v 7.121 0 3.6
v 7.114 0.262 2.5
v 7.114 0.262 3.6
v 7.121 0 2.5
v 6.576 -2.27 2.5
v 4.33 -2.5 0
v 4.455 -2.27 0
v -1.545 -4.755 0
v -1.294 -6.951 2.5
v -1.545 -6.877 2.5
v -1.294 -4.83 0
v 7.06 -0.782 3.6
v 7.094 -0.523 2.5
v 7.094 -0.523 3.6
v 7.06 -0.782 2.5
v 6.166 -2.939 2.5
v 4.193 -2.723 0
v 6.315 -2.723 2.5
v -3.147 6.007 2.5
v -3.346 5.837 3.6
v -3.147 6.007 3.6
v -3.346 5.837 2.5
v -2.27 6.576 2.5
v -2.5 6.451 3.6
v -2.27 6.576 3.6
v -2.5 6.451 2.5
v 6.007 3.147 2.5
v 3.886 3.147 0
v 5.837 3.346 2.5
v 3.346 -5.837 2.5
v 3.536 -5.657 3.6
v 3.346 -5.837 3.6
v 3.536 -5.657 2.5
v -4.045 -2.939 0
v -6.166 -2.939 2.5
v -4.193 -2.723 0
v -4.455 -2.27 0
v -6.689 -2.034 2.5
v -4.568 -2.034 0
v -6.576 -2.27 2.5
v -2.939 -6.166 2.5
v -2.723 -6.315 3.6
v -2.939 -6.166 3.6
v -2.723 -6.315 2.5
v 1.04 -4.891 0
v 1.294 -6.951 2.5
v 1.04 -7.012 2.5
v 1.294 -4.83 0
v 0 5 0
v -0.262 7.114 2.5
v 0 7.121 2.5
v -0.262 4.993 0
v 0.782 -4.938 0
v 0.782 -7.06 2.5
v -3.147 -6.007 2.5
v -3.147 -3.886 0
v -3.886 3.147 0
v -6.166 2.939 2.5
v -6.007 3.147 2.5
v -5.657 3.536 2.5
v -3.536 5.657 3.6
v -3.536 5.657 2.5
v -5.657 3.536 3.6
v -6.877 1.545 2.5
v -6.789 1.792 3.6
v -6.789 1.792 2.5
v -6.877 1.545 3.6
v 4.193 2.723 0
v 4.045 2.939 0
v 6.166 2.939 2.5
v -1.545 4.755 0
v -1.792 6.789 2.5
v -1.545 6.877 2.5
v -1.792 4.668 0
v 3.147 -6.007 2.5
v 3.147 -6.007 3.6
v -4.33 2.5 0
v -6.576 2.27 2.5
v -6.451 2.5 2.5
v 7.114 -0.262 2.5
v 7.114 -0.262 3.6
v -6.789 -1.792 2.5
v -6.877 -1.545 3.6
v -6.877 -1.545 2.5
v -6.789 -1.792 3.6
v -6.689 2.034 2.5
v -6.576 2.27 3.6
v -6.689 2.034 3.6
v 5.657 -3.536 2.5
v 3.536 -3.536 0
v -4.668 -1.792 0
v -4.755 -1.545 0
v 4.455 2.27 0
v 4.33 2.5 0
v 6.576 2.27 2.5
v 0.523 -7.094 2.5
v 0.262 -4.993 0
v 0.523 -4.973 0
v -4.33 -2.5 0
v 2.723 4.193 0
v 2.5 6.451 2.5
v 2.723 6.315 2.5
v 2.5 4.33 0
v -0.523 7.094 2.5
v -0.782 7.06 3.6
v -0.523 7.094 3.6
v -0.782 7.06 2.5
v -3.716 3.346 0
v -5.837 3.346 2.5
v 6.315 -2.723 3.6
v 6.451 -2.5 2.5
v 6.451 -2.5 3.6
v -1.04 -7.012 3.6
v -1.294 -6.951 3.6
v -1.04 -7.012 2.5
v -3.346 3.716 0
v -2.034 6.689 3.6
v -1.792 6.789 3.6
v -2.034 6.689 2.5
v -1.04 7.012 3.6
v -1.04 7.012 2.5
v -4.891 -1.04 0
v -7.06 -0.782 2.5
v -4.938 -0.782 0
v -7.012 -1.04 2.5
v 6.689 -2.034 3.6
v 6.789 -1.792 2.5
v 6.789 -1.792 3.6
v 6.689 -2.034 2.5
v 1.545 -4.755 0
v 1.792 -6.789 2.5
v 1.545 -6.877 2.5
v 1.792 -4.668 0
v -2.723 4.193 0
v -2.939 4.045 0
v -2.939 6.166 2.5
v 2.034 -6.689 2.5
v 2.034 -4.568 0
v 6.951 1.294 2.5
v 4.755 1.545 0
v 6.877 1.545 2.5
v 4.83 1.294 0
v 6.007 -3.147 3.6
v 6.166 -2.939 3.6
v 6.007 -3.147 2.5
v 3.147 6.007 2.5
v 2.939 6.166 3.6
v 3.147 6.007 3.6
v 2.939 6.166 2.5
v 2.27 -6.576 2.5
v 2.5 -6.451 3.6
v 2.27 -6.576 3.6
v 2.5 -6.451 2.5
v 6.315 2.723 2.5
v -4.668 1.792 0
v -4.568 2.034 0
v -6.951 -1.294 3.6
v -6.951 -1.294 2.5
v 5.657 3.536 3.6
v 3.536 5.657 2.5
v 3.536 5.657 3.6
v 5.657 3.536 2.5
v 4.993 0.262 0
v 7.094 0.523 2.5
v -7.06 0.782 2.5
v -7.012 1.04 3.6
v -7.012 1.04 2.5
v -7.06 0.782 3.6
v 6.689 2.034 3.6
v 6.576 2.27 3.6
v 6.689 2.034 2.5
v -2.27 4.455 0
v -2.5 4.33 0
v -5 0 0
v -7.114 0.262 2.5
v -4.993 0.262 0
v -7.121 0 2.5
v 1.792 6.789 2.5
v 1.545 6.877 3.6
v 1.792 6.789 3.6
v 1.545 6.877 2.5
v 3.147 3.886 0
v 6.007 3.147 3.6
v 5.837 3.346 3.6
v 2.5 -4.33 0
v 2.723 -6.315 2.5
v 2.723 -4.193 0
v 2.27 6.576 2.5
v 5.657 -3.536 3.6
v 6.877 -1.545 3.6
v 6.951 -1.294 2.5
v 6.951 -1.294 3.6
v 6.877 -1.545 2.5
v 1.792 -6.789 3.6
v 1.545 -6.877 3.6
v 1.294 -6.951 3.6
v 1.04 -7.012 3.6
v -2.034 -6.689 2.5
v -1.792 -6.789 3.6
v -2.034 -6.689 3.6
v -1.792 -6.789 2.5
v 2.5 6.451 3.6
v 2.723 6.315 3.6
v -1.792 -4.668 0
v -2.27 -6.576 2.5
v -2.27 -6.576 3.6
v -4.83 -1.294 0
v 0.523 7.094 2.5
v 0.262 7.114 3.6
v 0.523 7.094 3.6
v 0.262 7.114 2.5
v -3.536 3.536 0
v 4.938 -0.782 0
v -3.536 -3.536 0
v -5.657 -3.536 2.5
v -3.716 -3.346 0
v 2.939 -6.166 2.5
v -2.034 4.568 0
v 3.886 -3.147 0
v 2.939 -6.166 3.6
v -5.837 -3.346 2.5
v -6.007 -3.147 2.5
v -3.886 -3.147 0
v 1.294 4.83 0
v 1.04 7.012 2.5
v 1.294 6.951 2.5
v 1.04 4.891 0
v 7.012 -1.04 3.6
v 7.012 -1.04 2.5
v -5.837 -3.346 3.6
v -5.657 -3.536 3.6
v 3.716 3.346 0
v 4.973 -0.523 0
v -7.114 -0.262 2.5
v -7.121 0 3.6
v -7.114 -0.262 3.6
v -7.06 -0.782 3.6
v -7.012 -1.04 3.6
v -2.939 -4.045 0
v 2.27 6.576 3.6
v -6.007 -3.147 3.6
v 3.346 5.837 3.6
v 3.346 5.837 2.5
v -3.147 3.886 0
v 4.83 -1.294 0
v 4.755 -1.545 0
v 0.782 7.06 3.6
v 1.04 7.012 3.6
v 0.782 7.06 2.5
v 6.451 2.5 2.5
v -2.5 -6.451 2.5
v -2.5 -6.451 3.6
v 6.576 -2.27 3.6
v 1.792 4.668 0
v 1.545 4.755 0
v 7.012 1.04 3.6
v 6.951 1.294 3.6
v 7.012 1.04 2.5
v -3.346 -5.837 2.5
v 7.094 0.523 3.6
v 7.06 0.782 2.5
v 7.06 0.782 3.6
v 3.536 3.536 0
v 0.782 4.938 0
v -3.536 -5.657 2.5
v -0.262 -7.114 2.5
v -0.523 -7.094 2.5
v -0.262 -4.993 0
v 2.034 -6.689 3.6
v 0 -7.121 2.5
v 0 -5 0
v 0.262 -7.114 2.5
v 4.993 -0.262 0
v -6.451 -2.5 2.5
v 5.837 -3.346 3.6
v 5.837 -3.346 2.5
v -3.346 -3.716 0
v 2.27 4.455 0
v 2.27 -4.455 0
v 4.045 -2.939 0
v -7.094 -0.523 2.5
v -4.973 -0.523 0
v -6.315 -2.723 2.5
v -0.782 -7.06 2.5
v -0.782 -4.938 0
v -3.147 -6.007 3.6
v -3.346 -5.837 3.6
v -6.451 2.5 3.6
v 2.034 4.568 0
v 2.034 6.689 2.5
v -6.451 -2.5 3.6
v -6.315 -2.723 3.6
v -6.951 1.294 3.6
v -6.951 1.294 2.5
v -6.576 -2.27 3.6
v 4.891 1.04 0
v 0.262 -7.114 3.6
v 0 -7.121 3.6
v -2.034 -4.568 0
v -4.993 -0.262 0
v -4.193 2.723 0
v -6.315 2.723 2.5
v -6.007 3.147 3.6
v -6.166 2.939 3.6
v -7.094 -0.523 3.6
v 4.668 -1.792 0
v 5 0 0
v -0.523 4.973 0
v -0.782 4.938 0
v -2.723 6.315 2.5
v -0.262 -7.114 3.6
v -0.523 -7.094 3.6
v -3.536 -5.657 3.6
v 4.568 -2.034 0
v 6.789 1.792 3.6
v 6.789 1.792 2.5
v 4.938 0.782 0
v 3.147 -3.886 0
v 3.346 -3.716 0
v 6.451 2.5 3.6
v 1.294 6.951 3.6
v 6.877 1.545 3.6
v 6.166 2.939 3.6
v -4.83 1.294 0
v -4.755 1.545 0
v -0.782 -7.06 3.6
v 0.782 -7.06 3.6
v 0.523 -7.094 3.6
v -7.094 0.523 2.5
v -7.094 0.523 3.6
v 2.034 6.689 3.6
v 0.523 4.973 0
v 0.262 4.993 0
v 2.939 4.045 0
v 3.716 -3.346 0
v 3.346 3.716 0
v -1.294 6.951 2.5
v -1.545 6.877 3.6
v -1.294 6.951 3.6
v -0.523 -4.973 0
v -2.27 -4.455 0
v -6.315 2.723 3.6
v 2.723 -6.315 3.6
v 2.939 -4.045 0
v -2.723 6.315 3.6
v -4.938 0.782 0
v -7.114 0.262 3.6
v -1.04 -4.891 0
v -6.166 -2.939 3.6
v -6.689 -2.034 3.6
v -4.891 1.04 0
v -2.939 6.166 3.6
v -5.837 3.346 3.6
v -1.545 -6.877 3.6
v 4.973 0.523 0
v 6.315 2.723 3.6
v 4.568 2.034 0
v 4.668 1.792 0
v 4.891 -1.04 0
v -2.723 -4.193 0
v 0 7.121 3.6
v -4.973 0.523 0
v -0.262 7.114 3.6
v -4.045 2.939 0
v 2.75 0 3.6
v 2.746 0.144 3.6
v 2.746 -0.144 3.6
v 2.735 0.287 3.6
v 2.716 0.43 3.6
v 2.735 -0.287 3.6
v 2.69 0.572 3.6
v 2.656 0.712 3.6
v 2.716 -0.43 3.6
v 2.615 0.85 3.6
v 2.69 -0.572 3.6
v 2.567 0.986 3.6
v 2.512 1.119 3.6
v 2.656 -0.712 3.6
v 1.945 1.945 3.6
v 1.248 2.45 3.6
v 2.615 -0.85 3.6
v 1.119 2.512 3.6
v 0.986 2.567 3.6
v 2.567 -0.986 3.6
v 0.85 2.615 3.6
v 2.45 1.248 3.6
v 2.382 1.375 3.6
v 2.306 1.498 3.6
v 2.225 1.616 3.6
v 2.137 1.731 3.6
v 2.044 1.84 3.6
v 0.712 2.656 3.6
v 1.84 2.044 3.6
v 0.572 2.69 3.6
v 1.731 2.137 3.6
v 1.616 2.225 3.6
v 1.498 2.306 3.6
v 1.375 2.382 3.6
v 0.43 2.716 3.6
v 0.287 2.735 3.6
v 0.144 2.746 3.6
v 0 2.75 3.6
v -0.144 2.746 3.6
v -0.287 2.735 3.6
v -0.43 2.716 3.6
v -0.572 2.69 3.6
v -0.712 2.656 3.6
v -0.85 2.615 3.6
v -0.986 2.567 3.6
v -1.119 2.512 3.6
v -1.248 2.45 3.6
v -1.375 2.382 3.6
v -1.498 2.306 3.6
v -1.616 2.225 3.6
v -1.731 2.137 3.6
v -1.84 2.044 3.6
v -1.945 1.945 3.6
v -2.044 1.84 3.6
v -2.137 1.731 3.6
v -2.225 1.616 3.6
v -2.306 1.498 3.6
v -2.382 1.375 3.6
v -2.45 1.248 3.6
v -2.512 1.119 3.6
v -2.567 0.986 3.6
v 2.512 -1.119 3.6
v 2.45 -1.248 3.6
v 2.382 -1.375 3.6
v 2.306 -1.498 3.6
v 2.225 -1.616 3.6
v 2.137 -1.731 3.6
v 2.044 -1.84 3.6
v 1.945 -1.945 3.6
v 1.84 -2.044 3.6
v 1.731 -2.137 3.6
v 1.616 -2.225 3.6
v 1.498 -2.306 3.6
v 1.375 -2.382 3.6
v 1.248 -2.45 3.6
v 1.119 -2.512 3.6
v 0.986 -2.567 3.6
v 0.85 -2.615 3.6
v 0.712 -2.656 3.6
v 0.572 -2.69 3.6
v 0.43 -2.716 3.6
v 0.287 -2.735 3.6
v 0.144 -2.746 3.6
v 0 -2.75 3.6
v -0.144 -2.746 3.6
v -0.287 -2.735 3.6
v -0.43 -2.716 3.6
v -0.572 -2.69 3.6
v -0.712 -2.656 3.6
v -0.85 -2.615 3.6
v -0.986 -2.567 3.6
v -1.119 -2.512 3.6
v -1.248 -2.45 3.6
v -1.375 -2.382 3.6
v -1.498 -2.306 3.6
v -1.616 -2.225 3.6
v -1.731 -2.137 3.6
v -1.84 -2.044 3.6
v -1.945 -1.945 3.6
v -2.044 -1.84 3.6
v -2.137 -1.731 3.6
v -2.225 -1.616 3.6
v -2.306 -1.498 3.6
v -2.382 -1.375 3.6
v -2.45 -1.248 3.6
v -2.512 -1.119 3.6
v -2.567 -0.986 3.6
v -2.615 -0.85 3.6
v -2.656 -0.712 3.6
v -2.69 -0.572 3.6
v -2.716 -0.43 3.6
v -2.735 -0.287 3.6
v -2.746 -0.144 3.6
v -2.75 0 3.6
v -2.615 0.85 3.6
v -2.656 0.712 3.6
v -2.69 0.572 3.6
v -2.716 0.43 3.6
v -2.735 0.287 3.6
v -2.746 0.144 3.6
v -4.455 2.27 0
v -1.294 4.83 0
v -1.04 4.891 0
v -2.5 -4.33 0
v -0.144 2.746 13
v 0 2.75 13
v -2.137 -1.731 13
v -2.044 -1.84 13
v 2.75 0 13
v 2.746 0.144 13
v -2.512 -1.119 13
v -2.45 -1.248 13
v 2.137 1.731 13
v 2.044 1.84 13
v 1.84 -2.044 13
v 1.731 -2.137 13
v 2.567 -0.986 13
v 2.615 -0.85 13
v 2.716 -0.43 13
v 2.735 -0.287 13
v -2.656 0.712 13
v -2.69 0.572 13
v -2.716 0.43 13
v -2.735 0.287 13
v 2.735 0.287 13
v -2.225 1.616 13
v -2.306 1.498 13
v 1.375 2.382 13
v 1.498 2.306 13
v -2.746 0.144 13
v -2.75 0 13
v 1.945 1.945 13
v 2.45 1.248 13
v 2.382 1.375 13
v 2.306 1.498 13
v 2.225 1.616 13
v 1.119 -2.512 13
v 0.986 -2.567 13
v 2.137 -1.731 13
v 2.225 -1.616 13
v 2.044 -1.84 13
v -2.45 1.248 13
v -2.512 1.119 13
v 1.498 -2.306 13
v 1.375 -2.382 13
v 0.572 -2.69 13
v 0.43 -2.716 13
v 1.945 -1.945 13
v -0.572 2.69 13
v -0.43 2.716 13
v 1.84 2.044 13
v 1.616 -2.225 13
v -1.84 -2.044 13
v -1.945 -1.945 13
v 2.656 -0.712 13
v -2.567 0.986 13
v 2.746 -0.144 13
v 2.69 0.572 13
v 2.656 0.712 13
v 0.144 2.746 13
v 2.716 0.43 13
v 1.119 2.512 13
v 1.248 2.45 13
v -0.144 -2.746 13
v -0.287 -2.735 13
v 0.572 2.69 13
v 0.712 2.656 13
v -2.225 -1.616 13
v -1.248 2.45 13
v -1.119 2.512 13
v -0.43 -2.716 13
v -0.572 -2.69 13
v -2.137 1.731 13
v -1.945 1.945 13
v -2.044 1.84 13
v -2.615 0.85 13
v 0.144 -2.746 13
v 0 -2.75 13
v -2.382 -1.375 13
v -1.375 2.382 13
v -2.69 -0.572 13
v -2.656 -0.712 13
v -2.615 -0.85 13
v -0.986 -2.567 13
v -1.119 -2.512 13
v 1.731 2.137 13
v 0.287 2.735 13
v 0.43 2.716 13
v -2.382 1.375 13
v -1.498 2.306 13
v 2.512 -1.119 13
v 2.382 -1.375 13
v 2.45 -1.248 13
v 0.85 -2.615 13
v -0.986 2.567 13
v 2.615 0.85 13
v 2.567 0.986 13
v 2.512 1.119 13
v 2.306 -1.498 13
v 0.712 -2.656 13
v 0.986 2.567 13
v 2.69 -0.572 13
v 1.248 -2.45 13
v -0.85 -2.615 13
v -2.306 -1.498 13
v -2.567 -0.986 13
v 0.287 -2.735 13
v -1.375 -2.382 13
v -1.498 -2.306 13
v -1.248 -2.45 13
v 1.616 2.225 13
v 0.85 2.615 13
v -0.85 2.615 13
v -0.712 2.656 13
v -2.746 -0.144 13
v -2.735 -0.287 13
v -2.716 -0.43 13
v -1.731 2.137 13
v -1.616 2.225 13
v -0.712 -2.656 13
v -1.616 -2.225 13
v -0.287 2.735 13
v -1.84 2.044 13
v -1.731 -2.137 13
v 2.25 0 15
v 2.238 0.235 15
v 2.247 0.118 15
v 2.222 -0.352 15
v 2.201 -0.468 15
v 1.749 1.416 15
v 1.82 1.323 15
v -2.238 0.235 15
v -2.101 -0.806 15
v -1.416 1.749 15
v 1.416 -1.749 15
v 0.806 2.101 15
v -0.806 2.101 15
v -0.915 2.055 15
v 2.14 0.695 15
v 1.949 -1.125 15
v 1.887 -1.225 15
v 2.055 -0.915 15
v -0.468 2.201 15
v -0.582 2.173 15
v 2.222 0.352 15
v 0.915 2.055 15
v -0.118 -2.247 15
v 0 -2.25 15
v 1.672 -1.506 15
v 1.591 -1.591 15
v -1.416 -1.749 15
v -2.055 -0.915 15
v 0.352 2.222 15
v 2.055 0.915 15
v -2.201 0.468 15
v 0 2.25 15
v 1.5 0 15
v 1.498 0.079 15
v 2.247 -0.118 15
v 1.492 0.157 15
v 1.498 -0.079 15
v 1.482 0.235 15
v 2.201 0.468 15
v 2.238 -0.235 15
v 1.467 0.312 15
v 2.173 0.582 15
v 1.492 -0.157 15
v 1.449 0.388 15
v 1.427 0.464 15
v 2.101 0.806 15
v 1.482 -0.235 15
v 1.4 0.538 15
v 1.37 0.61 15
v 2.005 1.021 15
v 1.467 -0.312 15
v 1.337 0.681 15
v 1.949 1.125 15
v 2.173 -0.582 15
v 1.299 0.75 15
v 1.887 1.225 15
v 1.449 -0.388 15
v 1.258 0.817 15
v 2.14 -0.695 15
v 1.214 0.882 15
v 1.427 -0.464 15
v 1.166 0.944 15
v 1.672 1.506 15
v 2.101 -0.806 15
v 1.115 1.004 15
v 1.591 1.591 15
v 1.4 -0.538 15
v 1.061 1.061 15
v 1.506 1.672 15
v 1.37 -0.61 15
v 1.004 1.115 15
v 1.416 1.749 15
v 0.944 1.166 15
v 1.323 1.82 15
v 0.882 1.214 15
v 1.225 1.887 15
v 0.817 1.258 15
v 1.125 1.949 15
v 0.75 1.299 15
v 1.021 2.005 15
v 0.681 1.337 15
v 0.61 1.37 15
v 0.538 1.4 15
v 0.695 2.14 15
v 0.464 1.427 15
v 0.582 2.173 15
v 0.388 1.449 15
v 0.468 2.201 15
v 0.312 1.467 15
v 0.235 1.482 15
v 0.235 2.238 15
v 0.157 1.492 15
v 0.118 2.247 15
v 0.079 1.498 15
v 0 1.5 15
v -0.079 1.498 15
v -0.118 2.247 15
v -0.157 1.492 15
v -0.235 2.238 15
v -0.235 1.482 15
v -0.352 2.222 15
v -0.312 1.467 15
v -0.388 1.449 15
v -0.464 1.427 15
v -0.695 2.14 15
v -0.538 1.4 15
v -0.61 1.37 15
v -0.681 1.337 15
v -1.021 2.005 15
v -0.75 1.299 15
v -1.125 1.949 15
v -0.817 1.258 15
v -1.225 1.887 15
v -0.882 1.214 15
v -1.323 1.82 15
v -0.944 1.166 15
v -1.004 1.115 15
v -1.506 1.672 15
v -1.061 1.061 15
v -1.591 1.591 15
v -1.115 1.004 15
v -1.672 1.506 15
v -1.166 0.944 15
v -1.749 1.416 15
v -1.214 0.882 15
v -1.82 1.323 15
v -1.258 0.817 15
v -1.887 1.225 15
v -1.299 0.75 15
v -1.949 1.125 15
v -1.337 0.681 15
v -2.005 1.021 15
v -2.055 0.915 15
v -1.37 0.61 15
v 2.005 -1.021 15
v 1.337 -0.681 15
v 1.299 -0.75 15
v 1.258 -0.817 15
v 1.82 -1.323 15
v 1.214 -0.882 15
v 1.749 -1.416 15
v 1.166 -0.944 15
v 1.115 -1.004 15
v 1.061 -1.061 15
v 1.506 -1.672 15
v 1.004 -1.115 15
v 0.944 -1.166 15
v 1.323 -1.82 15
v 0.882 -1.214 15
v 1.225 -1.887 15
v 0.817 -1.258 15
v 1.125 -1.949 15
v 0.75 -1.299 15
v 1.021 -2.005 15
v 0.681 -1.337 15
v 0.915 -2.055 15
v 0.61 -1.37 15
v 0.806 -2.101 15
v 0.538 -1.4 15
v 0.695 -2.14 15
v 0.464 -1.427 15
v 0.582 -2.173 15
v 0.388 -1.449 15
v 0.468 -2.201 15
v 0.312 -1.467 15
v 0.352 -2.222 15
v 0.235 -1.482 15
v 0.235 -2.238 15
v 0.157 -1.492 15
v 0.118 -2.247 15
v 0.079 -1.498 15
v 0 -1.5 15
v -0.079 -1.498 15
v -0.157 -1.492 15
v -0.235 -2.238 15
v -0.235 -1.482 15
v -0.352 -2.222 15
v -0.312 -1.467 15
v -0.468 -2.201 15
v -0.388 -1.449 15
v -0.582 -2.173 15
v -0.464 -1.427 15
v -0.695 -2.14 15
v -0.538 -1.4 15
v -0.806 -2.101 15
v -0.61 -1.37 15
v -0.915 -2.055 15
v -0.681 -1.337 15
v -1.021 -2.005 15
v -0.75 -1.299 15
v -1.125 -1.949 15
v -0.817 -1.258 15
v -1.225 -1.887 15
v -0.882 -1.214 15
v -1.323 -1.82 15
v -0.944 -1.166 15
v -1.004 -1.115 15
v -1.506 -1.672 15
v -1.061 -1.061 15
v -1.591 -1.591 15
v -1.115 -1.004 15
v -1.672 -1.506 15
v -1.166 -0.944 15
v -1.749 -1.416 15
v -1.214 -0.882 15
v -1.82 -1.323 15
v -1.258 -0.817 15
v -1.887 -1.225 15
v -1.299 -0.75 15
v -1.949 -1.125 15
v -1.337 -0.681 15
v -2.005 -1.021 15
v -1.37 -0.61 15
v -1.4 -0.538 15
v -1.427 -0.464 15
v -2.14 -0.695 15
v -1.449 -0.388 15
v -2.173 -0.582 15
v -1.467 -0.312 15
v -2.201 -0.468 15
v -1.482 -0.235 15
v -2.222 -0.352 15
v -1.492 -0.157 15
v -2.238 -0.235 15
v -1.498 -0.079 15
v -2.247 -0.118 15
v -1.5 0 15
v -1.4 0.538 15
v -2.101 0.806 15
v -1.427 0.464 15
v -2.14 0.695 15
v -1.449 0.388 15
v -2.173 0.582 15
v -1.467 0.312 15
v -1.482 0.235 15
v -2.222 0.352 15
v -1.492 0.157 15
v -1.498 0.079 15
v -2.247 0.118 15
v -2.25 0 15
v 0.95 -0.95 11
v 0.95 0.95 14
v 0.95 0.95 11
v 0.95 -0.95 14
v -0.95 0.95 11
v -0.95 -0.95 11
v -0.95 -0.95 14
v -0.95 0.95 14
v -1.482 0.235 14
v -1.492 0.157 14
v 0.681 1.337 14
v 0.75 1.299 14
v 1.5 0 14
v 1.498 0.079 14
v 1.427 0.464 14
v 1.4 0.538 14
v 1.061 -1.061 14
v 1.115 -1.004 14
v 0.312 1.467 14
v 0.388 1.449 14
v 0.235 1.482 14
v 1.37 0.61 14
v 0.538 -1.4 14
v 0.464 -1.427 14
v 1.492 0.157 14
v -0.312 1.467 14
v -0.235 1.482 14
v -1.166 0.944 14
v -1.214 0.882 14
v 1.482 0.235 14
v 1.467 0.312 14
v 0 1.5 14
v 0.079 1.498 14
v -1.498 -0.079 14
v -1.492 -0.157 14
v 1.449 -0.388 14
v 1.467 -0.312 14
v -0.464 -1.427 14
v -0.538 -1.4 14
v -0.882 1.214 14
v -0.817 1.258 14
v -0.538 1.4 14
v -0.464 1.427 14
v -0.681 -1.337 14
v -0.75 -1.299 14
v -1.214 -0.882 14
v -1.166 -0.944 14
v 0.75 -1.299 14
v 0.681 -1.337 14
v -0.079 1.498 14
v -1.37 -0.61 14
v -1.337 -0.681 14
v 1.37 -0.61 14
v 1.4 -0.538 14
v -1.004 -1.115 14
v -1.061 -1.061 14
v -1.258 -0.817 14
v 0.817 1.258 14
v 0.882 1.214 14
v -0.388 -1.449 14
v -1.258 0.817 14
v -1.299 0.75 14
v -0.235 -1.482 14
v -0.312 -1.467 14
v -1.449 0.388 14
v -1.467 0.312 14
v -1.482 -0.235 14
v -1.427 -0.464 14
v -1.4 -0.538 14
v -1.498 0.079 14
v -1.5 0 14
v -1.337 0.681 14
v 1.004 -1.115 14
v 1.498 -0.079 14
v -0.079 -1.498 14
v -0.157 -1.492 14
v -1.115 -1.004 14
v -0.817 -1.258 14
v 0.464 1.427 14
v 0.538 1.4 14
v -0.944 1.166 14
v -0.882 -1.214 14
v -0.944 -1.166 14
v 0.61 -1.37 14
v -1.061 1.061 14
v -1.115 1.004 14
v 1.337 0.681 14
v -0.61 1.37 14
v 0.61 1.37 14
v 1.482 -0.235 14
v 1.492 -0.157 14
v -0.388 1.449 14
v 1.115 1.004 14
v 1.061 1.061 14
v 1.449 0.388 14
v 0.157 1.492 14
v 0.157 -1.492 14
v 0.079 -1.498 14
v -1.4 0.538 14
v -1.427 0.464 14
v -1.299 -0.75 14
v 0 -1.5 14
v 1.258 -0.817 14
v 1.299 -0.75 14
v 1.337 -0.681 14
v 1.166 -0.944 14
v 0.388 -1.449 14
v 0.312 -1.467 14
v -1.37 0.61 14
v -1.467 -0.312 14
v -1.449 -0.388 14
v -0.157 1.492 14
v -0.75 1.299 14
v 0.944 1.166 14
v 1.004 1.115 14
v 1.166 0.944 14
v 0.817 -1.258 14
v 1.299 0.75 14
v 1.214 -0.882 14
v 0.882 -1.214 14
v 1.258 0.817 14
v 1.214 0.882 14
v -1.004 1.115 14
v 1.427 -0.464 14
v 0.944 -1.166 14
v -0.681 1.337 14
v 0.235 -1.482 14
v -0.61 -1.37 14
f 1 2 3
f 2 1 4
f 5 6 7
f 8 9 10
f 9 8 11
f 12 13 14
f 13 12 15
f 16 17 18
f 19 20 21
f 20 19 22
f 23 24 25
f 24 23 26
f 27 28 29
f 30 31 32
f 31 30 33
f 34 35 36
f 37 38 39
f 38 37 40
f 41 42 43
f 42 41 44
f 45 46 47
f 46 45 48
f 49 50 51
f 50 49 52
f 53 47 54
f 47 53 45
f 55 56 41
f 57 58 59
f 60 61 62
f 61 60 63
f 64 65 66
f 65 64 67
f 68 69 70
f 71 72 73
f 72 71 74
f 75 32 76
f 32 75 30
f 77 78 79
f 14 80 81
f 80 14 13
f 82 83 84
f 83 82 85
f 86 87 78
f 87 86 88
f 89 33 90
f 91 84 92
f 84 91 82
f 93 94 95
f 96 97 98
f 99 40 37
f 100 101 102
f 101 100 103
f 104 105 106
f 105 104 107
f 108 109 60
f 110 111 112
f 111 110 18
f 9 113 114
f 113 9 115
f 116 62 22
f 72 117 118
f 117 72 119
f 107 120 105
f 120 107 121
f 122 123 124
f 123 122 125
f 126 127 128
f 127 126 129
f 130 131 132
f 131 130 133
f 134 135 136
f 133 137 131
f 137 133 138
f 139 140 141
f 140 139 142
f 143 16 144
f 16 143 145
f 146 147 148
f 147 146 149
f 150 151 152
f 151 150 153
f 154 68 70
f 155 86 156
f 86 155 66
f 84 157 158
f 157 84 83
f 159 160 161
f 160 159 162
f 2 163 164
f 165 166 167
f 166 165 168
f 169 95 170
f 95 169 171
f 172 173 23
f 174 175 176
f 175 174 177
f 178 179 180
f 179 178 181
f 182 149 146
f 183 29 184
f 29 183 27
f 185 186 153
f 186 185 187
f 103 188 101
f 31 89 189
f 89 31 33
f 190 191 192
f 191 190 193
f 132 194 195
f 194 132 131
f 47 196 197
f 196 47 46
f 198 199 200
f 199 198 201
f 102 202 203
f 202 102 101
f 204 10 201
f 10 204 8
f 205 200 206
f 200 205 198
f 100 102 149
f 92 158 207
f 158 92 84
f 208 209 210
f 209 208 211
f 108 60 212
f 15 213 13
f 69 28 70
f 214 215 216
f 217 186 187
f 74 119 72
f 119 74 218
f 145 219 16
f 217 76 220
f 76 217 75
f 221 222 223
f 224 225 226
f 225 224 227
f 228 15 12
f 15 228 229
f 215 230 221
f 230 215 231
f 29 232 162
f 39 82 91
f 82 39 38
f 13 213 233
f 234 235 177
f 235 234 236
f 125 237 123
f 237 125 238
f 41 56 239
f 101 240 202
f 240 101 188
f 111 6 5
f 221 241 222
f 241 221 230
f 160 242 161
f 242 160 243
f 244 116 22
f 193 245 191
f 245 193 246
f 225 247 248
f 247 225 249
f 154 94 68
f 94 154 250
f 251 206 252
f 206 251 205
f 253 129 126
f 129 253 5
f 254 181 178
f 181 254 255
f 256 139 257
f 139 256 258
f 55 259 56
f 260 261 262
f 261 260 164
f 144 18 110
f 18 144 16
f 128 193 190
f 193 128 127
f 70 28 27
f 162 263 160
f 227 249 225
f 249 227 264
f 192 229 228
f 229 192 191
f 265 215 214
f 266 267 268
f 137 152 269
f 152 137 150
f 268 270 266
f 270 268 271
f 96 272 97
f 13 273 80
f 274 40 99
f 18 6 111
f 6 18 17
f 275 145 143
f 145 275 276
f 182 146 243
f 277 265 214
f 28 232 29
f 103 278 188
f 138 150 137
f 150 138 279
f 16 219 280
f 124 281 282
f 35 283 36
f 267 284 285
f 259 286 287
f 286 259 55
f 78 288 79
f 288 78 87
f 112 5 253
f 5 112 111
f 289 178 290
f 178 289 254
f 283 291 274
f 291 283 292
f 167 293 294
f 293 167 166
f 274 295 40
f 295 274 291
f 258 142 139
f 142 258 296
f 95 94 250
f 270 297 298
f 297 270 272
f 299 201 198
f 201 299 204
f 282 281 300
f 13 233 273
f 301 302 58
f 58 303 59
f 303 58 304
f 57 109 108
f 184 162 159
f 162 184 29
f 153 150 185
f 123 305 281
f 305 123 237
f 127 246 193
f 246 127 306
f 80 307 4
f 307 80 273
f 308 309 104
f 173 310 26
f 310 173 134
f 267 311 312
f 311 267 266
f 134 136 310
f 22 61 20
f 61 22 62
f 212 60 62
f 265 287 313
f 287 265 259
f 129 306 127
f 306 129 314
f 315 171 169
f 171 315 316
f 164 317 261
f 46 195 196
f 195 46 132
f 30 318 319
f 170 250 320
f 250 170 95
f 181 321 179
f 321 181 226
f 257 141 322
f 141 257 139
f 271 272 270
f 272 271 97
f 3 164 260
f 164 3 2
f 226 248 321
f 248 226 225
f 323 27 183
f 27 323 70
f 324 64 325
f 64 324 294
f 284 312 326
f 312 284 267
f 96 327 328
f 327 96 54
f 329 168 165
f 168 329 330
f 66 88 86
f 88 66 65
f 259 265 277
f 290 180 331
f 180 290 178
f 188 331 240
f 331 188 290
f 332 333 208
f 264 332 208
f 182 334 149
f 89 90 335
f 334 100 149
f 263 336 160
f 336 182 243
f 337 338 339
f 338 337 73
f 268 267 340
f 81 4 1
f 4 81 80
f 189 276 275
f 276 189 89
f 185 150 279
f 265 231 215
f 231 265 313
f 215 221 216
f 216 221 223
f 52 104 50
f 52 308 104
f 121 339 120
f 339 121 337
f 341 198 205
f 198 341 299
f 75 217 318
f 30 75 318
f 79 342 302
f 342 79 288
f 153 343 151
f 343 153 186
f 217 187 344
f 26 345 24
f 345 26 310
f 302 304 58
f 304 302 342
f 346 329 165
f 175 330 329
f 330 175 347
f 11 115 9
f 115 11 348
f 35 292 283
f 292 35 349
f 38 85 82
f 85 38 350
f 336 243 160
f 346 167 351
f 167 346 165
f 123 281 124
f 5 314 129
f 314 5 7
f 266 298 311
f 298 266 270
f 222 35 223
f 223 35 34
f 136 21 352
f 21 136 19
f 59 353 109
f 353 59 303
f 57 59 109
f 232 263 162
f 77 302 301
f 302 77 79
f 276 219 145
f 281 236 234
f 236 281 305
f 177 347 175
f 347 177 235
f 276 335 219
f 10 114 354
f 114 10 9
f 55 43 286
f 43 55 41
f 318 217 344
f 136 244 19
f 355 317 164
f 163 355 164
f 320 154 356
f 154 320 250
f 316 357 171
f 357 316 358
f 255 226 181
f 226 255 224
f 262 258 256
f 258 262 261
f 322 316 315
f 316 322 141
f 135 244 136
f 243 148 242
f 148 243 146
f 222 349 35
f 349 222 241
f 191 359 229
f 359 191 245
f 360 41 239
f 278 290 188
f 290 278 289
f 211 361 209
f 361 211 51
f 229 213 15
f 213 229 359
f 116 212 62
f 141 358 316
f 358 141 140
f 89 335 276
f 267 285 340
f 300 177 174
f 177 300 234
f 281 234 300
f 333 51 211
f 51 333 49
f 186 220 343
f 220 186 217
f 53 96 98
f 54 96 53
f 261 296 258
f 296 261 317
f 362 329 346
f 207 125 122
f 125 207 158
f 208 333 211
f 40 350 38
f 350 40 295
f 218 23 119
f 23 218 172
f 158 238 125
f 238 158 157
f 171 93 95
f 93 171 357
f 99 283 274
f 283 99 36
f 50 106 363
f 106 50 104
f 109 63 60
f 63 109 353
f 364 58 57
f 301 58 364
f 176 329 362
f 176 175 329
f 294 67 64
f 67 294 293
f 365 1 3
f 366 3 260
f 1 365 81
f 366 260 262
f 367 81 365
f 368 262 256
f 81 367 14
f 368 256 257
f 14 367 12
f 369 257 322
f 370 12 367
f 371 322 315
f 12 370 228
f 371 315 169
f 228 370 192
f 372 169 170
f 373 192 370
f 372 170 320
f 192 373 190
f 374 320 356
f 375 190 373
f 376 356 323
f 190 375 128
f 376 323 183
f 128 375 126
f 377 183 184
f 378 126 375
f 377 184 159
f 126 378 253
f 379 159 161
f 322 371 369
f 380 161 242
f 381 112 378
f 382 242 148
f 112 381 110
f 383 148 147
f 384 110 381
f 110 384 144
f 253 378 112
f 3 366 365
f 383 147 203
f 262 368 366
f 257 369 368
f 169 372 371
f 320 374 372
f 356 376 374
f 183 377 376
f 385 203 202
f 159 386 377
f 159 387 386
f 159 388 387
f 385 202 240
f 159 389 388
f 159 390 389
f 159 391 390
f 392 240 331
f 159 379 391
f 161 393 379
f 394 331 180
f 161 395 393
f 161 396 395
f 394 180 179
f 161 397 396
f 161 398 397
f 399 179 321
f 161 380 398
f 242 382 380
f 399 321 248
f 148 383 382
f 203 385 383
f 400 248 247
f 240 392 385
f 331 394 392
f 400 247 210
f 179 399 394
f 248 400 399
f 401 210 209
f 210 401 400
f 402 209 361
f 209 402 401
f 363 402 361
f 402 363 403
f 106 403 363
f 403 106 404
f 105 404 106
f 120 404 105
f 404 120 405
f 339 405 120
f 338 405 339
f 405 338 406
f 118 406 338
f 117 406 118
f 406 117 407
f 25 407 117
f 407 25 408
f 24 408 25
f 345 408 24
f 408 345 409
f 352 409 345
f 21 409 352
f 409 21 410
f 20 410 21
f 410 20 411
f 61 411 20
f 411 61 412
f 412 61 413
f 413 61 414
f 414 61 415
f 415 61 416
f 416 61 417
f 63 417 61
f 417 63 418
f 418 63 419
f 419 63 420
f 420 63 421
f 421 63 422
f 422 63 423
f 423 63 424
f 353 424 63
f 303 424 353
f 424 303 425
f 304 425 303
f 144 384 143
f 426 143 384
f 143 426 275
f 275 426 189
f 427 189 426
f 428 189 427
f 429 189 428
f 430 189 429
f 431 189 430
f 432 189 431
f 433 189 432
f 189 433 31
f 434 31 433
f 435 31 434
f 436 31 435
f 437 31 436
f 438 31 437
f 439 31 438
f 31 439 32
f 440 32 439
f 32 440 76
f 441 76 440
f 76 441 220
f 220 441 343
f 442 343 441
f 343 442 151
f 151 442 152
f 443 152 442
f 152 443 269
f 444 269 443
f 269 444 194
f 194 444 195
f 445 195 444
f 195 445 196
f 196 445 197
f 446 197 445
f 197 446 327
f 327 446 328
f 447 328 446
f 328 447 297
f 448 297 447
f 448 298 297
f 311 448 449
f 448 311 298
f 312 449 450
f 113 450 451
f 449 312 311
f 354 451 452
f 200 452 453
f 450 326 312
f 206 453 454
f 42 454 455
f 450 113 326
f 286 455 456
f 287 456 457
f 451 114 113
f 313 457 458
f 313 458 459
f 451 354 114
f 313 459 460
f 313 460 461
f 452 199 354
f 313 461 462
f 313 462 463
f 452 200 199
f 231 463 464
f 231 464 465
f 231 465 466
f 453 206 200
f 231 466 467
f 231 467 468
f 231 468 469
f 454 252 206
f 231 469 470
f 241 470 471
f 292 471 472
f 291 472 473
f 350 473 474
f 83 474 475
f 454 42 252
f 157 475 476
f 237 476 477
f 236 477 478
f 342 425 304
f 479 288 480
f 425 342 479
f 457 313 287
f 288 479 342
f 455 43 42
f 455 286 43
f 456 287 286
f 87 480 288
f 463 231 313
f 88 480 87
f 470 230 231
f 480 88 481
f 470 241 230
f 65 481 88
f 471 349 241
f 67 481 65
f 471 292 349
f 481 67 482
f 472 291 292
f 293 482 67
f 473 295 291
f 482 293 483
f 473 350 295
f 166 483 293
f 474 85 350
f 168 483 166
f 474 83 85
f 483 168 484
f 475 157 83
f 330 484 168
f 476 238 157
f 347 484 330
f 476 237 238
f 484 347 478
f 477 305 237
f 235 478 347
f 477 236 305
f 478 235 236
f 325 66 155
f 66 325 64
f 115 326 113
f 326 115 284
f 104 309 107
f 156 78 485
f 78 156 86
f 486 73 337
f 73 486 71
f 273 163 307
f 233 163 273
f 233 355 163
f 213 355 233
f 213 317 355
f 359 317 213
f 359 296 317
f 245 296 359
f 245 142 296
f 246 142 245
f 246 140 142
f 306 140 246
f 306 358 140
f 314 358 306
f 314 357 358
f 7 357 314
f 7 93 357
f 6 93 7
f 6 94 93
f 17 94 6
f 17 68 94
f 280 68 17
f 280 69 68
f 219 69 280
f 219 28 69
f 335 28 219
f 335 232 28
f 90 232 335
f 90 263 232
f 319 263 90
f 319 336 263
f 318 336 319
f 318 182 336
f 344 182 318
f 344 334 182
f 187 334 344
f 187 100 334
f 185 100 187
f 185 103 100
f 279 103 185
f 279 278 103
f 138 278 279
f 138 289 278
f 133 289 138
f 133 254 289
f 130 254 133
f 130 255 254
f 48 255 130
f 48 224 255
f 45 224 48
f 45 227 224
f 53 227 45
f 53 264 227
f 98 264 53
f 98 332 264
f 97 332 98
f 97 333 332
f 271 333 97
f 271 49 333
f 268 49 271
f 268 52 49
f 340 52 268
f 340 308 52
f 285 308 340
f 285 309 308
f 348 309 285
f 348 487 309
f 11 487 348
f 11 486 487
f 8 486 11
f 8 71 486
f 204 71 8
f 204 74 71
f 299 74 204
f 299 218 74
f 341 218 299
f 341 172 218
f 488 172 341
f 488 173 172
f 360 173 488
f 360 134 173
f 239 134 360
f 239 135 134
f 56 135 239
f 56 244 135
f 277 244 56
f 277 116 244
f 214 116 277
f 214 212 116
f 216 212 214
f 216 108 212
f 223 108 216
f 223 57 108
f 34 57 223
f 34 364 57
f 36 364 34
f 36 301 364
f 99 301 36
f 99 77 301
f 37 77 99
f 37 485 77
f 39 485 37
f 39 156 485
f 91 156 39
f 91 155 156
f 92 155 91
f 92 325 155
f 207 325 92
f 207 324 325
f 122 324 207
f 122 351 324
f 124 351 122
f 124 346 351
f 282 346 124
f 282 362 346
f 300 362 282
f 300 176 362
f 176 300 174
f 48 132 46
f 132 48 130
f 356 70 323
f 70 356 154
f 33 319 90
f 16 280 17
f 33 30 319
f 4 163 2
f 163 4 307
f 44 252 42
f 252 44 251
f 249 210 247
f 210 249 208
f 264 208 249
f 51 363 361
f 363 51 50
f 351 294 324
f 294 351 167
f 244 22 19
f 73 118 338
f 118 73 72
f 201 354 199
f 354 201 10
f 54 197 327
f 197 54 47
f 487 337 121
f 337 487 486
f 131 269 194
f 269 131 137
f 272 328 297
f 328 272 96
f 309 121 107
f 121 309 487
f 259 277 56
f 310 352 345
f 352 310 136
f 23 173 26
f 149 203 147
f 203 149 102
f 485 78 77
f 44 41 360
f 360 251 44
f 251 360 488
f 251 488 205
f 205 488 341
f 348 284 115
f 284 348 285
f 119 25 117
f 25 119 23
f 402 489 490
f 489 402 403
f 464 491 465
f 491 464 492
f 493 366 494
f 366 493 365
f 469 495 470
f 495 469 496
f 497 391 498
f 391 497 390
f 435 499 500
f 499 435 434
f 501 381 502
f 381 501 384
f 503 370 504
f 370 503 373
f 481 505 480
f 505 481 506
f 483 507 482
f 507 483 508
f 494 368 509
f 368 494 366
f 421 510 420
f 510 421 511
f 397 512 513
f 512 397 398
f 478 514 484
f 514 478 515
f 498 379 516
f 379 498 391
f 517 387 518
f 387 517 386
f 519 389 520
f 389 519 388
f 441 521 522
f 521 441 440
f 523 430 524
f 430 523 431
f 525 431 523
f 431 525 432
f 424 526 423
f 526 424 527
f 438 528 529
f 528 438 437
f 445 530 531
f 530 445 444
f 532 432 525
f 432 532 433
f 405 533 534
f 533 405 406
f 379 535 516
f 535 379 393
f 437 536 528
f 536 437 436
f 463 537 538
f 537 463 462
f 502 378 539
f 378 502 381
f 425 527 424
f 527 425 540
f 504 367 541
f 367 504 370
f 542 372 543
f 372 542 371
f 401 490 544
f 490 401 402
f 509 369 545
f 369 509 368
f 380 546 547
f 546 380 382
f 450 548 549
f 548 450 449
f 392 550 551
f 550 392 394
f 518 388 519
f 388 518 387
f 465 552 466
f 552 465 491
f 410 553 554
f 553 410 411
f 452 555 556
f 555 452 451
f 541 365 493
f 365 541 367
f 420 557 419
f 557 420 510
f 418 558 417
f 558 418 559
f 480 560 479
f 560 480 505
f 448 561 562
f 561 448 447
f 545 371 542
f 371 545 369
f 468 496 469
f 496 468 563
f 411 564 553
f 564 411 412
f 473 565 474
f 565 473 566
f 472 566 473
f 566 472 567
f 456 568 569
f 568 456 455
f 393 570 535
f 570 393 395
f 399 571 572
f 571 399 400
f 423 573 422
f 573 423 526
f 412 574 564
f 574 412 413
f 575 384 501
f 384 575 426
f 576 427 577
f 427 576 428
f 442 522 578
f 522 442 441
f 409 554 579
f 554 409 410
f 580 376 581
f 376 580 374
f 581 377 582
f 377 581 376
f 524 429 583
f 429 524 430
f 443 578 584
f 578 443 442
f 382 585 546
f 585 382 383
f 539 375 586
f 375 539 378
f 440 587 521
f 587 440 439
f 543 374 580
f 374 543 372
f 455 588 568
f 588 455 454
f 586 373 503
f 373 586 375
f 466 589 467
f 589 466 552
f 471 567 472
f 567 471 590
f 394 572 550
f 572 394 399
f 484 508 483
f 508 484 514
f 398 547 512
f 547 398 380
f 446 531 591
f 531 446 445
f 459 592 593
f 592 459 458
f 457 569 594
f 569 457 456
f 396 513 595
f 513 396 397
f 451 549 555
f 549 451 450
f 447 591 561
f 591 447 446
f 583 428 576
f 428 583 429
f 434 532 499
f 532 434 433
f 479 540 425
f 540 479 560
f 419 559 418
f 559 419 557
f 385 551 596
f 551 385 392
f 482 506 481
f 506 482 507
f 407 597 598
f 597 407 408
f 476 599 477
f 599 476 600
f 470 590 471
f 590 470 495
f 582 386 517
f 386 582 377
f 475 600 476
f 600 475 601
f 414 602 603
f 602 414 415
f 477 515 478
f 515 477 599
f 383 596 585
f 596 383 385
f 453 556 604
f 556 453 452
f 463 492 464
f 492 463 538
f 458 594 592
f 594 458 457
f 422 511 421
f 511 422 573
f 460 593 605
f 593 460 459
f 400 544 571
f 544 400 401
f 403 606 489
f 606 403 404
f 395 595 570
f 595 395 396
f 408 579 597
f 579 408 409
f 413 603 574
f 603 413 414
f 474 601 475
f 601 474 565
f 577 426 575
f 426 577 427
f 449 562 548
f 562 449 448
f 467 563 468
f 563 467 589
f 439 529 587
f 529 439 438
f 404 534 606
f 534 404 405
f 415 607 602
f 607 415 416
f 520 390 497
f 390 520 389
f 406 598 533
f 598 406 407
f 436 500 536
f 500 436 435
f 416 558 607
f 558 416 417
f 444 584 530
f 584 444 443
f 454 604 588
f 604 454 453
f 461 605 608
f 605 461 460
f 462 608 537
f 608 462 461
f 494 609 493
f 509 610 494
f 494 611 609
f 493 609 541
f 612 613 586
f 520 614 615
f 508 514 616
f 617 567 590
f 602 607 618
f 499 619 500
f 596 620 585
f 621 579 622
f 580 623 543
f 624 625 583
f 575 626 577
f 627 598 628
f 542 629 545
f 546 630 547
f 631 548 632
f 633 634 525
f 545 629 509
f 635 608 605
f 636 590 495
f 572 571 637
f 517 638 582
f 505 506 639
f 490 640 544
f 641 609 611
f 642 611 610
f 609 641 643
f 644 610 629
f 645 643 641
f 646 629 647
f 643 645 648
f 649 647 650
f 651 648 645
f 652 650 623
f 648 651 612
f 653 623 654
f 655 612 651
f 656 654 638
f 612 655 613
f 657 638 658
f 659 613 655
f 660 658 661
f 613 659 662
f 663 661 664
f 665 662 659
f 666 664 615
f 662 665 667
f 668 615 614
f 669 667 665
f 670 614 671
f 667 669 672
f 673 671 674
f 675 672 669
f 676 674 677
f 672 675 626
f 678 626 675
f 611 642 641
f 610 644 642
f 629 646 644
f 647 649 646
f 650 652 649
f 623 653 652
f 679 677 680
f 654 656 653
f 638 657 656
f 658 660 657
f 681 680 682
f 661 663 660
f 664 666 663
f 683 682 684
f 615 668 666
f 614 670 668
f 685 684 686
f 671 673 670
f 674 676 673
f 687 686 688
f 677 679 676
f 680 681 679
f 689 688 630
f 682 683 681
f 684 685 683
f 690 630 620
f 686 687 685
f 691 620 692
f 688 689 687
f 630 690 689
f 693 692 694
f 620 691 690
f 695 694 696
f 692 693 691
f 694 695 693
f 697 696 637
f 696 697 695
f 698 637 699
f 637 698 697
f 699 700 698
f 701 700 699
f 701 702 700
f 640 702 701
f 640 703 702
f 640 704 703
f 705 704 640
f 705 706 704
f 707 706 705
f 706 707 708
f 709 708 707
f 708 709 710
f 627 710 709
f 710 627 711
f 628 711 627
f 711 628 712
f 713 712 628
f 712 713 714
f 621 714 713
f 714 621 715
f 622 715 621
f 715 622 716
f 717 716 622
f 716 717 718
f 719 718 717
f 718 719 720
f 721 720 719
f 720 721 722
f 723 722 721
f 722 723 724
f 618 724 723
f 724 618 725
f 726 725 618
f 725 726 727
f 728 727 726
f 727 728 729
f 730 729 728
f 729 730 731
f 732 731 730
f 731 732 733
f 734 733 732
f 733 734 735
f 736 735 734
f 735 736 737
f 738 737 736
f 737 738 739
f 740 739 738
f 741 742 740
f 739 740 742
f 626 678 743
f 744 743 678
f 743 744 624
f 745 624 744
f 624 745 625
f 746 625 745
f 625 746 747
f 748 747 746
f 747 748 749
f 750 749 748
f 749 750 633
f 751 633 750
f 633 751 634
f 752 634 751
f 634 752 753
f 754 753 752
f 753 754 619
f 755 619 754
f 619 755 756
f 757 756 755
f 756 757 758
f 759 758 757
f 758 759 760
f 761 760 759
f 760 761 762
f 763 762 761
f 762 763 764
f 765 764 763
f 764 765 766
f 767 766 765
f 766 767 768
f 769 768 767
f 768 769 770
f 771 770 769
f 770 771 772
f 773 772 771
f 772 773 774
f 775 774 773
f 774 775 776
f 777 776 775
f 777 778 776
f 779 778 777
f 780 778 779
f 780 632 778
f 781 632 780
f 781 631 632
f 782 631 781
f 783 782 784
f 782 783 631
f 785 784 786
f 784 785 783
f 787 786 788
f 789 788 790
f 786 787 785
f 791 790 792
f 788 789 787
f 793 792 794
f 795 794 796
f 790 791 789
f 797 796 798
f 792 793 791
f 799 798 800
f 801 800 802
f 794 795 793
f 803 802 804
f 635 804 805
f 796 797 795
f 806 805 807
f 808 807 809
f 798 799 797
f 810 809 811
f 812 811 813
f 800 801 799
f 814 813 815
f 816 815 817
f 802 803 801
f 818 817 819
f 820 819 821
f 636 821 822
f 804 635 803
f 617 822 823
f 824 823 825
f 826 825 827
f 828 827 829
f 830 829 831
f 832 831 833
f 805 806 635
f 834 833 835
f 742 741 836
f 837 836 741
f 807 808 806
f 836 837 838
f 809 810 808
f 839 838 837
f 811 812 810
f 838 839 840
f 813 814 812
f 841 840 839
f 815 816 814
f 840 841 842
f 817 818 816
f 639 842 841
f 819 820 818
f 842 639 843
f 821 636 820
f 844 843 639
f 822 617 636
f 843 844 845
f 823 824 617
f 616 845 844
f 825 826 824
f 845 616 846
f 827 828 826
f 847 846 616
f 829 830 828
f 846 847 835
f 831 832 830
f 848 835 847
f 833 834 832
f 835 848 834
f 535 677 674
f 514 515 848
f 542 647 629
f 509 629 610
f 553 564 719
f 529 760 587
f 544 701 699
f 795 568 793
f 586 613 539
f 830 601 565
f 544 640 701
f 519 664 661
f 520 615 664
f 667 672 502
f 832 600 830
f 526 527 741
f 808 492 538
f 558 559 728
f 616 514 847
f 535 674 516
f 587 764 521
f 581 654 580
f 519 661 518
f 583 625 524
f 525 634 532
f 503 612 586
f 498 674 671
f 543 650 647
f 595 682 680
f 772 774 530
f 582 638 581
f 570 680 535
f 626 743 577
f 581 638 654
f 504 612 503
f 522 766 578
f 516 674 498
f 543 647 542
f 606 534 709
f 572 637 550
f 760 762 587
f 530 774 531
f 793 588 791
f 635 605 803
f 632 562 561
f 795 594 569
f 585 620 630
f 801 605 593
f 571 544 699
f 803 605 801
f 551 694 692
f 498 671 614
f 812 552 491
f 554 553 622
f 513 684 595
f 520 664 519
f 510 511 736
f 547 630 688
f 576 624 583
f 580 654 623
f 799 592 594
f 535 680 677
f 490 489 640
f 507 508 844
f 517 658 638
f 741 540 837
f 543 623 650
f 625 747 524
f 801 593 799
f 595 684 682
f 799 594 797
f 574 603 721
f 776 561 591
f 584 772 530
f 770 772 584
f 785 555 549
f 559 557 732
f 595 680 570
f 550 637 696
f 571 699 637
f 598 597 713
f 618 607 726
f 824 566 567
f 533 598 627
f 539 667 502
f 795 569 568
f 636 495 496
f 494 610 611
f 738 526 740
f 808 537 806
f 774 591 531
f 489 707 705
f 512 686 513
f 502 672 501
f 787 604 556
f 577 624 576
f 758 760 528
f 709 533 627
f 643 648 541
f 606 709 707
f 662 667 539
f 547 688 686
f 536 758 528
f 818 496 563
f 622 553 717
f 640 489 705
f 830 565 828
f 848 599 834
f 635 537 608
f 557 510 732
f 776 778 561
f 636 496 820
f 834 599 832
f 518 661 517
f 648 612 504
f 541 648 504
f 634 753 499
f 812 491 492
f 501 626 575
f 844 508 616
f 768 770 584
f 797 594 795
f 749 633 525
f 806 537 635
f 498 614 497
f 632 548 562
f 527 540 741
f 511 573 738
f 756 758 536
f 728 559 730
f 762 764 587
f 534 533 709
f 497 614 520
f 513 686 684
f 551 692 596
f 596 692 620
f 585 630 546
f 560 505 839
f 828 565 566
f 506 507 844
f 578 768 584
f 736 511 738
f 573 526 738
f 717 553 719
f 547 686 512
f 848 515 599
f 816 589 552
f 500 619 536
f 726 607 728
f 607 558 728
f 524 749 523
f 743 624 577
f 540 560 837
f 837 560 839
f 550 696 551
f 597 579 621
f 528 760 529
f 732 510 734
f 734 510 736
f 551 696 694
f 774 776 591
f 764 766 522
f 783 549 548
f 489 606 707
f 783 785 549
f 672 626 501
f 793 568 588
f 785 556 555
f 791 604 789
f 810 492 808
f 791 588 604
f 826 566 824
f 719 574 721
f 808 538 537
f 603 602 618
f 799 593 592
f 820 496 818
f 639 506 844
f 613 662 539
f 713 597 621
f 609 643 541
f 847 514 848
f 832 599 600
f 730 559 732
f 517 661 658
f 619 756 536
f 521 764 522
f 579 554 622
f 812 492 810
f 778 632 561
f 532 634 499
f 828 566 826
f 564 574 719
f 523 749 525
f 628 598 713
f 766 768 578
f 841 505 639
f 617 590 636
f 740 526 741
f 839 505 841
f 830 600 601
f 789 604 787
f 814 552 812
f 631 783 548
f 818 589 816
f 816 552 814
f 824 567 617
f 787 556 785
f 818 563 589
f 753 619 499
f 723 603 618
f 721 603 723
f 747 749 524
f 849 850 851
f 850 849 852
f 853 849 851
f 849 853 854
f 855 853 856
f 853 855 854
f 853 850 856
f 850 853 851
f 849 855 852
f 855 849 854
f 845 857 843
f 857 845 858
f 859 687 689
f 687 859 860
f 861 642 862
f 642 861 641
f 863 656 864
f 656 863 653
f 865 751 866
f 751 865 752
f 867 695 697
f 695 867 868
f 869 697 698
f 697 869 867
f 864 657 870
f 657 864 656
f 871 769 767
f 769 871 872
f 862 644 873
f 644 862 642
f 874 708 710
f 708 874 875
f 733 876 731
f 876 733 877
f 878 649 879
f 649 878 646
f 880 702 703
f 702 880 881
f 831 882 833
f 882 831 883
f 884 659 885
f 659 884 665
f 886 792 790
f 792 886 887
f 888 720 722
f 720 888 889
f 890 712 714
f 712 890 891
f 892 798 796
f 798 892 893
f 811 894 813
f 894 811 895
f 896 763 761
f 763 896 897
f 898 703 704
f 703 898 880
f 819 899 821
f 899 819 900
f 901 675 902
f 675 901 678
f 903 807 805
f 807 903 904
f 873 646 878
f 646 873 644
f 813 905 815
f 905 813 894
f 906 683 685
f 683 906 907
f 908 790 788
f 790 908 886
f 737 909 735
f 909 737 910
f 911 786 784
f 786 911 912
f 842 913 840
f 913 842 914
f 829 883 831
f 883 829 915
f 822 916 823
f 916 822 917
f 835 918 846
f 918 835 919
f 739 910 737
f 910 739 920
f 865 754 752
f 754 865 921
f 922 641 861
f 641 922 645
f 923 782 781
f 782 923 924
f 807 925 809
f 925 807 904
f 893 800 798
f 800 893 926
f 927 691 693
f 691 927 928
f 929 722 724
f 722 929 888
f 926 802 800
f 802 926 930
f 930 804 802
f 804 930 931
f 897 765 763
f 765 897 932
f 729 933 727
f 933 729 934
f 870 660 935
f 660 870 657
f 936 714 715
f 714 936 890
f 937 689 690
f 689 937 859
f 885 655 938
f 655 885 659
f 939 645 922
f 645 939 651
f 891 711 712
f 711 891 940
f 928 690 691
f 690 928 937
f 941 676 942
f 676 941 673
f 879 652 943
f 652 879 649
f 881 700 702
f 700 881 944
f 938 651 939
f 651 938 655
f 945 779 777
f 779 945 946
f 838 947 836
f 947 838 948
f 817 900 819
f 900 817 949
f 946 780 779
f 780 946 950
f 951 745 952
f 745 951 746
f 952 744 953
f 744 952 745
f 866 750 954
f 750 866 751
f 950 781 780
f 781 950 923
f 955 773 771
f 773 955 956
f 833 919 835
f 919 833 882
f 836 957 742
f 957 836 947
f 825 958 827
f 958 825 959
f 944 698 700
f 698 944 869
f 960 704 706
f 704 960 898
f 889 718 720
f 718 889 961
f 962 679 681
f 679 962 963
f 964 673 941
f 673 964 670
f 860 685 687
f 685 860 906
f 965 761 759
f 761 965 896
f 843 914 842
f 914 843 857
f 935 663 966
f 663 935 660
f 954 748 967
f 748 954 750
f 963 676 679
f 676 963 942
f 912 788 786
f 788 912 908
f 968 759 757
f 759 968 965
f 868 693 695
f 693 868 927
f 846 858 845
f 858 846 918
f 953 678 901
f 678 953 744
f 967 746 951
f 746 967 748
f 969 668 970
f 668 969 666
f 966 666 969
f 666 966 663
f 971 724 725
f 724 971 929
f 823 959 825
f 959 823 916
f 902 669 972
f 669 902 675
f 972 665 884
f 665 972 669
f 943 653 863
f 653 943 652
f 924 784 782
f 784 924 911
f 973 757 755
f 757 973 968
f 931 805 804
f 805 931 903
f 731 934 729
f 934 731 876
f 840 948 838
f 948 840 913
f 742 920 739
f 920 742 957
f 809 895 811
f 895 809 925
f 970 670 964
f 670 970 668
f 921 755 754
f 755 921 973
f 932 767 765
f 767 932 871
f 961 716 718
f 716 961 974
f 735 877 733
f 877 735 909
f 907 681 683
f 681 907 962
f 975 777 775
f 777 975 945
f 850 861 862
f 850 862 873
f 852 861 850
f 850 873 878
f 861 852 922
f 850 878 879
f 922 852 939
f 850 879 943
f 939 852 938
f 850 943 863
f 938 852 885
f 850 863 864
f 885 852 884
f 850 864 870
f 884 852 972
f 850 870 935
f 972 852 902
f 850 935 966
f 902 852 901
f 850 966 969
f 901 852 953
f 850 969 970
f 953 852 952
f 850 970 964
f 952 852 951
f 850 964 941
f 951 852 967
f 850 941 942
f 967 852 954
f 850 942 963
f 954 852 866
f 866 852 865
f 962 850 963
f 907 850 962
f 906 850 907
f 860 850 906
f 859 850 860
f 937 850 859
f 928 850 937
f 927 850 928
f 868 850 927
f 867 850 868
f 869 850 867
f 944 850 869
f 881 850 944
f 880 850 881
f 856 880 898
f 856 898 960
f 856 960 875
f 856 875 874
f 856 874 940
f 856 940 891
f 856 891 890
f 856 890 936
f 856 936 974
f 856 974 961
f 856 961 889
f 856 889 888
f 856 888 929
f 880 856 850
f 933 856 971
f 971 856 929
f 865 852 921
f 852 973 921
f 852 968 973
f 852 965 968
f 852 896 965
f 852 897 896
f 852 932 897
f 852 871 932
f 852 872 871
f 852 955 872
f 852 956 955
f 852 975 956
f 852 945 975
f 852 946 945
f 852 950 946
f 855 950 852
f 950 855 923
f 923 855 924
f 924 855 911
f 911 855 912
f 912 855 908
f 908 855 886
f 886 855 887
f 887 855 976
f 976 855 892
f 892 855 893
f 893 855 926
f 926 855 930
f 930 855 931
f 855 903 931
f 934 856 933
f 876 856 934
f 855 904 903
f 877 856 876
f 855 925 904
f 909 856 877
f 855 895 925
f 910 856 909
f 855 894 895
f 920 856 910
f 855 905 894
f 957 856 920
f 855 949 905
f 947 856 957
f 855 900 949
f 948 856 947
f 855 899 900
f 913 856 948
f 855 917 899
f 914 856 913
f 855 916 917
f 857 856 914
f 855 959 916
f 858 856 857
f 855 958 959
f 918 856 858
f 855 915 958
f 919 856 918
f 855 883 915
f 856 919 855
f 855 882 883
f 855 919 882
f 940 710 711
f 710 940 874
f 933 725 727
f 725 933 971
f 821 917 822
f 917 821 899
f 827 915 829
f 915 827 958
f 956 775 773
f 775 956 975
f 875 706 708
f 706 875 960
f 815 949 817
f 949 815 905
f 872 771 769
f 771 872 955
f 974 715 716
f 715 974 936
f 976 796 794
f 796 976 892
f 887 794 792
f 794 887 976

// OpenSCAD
$fn=120;
H=15;
m=0; // 0.3; // Zero for resin
difference()
{
    union()
    {
        hull()
        {
             cylinder(d=10,h=1);
             rotate([0,0,45])translate([0,0,3])minkowski()
             {
                cube([3,3,1],center=true);
                cylinder(r=5,h=0.1);
             }
        }
        cylinder(d=5.5,h=H-2);
        translate([0,0,H-2])cylinder(d2=4.5,d1=5.5,h=2);
    }
    translate([0,0,H-2])cube([1.9+m,1.9+m,4],center=true);
    translate([0,0,H-1])cylinder(d=3+m,h=2);
}
